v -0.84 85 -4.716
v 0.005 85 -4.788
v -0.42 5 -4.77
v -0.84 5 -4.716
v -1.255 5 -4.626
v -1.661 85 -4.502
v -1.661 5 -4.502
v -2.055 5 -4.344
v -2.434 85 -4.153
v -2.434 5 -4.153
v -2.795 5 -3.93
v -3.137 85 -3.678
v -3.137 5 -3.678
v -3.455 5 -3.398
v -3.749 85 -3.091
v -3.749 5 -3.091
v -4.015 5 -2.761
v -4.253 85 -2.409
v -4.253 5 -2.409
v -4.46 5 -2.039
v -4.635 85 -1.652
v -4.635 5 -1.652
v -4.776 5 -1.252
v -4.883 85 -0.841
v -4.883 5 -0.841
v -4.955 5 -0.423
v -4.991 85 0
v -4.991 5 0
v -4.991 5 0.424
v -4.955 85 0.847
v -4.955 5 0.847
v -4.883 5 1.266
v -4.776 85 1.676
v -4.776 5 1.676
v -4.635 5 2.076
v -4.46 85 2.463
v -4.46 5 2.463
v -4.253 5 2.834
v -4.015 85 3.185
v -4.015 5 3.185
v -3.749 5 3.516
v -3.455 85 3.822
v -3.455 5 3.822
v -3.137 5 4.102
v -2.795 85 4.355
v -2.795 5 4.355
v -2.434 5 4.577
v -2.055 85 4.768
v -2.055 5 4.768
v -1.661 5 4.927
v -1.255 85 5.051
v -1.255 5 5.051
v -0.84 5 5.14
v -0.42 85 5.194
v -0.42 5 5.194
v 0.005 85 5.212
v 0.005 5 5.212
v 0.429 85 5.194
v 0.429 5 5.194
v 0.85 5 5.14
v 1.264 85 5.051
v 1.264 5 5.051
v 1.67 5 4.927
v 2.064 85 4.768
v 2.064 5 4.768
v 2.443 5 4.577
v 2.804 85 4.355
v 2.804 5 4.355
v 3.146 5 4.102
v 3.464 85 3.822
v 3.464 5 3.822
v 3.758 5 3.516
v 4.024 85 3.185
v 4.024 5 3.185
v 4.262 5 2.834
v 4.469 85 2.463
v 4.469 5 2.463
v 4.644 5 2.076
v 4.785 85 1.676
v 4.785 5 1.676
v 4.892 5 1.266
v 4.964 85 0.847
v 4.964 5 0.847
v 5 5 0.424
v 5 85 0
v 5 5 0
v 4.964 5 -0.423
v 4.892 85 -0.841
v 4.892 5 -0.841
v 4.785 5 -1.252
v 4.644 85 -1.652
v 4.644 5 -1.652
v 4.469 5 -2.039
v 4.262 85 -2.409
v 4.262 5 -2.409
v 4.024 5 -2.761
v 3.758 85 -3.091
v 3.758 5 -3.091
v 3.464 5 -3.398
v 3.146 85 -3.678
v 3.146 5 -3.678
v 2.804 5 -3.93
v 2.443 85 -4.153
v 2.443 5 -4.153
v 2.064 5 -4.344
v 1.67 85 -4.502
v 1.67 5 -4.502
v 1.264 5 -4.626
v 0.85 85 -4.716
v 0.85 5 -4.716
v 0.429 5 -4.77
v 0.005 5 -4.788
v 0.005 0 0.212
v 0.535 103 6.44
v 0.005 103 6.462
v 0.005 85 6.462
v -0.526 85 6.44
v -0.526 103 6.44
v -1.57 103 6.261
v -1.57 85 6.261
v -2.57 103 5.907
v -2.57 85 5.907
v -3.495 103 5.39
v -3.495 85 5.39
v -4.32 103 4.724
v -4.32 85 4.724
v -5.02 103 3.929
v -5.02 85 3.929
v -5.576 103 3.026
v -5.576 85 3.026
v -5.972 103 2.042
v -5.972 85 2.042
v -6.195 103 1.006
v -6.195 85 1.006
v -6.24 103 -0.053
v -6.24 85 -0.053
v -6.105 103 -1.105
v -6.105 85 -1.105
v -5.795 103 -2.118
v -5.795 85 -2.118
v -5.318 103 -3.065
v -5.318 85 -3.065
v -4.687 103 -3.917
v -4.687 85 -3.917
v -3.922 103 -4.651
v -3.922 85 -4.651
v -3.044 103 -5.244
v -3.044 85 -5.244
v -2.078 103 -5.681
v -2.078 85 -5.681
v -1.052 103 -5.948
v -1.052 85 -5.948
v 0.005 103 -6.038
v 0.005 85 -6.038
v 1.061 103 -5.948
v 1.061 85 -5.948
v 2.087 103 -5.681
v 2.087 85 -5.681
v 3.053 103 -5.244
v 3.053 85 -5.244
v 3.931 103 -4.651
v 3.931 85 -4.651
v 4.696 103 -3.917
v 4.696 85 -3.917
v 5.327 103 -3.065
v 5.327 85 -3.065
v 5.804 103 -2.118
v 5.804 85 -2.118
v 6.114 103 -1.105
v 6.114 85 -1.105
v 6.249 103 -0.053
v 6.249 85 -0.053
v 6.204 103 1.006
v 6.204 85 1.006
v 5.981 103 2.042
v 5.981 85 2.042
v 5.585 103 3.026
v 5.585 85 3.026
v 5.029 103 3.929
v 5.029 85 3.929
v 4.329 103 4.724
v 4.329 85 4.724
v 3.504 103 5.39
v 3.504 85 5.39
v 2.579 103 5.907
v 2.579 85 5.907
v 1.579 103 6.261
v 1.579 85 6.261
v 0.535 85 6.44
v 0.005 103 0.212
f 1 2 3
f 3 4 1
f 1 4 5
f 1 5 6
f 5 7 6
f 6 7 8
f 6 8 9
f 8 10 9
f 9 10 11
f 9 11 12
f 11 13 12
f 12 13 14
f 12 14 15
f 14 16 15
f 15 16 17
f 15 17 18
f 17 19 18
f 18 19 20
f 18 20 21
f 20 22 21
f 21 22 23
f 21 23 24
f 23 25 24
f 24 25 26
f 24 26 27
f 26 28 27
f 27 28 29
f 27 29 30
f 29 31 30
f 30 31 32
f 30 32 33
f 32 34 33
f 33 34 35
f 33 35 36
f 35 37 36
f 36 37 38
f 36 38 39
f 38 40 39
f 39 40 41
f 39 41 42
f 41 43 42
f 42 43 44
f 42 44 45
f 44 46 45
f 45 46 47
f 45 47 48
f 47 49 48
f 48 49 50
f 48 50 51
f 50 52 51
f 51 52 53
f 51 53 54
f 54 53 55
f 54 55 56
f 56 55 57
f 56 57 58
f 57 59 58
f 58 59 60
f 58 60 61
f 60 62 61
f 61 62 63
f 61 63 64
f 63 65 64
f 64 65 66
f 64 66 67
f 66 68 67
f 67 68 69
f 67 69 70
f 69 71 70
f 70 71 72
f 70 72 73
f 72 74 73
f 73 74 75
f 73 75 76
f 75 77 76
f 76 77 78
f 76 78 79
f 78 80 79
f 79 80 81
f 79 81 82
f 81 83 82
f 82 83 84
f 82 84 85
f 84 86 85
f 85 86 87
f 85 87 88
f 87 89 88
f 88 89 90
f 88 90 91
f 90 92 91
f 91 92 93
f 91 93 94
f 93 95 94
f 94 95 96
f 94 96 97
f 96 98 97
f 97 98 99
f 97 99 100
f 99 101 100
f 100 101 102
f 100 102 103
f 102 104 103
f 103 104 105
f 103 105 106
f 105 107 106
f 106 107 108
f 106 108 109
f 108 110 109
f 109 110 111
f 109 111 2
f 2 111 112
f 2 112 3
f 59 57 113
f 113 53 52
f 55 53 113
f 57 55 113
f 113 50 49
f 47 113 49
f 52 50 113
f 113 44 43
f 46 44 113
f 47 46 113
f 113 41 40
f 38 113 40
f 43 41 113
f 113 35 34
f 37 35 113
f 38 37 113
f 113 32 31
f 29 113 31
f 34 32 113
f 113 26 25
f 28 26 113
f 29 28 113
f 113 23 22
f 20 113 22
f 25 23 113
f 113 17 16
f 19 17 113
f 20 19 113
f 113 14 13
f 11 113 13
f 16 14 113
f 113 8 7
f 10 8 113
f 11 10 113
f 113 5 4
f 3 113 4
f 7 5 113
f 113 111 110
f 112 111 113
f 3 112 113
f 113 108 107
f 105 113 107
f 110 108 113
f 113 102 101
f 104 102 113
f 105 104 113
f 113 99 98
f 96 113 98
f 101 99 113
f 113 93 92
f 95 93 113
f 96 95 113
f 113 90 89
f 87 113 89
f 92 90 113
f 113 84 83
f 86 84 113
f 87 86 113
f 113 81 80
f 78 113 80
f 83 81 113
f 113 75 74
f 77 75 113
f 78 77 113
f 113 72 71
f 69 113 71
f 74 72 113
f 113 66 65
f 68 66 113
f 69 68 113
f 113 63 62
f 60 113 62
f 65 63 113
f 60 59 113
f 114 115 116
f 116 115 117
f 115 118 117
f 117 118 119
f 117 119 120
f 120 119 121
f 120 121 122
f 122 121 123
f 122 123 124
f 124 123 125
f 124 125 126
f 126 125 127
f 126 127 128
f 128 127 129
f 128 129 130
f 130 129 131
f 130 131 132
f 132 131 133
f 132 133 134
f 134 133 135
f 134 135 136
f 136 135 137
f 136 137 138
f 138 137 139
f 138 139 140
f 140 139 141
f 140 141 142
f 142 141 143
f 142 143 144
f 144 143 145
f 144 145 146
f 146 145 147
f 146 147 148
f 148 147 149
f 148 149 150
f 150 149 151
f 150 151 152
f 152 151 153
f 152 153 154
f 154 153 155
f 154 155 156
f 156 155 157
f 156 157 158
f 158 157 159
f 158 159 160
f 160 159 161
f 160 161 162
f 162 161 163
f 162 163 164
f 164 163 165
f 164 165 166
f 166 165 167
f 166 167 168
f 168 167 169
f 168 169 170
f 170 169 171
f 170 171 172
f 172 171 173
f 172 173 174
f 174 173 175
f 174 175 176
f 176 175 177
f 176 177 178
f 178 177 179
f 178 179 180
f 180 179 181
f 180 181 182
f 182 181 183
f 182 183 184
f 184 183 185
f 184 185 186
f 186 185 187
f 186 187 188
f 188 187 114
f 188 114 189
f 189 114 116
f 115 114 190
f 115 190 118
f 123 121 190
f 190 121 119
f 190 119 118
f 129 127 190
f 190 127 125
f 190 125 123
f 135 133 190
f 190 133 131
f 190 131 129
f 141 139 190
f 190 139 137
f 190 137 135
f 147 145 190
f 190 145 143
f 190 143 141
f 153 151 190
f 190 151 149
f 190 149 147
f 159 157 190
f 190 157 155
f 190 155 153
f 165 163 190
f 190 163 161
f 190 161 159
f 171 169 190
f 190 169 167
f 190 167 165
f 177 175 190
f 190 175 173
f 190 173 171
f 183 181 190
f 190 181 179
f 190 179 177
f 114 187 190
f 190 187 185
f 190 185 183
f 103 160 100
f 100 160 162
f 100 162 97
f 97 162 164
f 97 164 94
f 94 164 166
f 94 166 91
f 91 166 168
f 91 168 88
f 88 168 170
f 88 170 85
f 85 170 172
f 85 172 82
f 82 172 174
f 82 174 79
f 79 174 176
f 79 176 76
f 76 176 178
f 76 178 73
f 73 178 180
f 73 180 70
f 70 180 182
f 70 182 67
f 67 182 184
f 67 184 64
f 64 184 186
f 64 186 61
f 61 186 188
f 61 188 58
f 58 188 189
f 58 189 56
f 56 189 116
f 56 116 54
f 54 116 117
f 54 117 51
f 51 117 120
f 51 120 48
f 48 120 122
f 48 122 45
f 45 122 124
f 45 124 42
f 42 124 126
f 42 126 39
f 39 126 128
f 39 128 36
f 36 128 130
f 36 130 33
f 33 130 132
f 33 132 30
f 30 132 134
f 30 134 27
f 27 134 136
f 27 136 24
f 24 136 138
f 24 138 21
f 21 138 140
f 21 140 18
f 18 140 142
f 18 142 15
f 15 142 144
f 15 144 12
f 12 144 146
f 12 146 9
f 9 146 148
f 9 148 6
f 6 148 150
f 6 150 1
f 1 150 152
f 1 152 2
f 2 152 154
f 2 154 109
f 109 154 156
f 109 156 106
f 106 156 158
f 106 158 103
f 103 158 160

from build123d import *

# Parameters (mm, degrees)
SKETCH1_R           = 5
BOSS_EXTRUDE1_DEPTH = 85
CHAMFER1_SIZE       = 5
SKETCH2_R           = 6.25
BOSS_EXTRUDE2_DEPTH = 18


with BuildPart() as part:
    # Sketch1 → Boss-Extrude1 (new body)
    with BuildSketch(Plane(origin=(0, 0, 0), x_dir=(1, 0, 0), z_dir=(0, 1, 0))):
        Circle(SKETCH1_R)
    extrude(amount=BOSS_EXTRUDE1_DEPTH)

    # Chamfer1
    chamfer1_edges = [part.edges().sort_by_distance(p)[0] for p in [
        (-5, 0, 0),
    ]]
    chamfer(chamfer1_edges, length=CHAMFER1_SIZE)

    # Sketch2 → Boss-Extrude2 (add)
    with BuildSketch(Plane(origin=(0, 85, 0), x_dir=(1, 0, 0), z_dir=(0, 1, 0))):
        Circle(SKETCH2_R)
    extrude(amount=BOSS_EXTRUDE2_DEPTH)


solid = part.part
